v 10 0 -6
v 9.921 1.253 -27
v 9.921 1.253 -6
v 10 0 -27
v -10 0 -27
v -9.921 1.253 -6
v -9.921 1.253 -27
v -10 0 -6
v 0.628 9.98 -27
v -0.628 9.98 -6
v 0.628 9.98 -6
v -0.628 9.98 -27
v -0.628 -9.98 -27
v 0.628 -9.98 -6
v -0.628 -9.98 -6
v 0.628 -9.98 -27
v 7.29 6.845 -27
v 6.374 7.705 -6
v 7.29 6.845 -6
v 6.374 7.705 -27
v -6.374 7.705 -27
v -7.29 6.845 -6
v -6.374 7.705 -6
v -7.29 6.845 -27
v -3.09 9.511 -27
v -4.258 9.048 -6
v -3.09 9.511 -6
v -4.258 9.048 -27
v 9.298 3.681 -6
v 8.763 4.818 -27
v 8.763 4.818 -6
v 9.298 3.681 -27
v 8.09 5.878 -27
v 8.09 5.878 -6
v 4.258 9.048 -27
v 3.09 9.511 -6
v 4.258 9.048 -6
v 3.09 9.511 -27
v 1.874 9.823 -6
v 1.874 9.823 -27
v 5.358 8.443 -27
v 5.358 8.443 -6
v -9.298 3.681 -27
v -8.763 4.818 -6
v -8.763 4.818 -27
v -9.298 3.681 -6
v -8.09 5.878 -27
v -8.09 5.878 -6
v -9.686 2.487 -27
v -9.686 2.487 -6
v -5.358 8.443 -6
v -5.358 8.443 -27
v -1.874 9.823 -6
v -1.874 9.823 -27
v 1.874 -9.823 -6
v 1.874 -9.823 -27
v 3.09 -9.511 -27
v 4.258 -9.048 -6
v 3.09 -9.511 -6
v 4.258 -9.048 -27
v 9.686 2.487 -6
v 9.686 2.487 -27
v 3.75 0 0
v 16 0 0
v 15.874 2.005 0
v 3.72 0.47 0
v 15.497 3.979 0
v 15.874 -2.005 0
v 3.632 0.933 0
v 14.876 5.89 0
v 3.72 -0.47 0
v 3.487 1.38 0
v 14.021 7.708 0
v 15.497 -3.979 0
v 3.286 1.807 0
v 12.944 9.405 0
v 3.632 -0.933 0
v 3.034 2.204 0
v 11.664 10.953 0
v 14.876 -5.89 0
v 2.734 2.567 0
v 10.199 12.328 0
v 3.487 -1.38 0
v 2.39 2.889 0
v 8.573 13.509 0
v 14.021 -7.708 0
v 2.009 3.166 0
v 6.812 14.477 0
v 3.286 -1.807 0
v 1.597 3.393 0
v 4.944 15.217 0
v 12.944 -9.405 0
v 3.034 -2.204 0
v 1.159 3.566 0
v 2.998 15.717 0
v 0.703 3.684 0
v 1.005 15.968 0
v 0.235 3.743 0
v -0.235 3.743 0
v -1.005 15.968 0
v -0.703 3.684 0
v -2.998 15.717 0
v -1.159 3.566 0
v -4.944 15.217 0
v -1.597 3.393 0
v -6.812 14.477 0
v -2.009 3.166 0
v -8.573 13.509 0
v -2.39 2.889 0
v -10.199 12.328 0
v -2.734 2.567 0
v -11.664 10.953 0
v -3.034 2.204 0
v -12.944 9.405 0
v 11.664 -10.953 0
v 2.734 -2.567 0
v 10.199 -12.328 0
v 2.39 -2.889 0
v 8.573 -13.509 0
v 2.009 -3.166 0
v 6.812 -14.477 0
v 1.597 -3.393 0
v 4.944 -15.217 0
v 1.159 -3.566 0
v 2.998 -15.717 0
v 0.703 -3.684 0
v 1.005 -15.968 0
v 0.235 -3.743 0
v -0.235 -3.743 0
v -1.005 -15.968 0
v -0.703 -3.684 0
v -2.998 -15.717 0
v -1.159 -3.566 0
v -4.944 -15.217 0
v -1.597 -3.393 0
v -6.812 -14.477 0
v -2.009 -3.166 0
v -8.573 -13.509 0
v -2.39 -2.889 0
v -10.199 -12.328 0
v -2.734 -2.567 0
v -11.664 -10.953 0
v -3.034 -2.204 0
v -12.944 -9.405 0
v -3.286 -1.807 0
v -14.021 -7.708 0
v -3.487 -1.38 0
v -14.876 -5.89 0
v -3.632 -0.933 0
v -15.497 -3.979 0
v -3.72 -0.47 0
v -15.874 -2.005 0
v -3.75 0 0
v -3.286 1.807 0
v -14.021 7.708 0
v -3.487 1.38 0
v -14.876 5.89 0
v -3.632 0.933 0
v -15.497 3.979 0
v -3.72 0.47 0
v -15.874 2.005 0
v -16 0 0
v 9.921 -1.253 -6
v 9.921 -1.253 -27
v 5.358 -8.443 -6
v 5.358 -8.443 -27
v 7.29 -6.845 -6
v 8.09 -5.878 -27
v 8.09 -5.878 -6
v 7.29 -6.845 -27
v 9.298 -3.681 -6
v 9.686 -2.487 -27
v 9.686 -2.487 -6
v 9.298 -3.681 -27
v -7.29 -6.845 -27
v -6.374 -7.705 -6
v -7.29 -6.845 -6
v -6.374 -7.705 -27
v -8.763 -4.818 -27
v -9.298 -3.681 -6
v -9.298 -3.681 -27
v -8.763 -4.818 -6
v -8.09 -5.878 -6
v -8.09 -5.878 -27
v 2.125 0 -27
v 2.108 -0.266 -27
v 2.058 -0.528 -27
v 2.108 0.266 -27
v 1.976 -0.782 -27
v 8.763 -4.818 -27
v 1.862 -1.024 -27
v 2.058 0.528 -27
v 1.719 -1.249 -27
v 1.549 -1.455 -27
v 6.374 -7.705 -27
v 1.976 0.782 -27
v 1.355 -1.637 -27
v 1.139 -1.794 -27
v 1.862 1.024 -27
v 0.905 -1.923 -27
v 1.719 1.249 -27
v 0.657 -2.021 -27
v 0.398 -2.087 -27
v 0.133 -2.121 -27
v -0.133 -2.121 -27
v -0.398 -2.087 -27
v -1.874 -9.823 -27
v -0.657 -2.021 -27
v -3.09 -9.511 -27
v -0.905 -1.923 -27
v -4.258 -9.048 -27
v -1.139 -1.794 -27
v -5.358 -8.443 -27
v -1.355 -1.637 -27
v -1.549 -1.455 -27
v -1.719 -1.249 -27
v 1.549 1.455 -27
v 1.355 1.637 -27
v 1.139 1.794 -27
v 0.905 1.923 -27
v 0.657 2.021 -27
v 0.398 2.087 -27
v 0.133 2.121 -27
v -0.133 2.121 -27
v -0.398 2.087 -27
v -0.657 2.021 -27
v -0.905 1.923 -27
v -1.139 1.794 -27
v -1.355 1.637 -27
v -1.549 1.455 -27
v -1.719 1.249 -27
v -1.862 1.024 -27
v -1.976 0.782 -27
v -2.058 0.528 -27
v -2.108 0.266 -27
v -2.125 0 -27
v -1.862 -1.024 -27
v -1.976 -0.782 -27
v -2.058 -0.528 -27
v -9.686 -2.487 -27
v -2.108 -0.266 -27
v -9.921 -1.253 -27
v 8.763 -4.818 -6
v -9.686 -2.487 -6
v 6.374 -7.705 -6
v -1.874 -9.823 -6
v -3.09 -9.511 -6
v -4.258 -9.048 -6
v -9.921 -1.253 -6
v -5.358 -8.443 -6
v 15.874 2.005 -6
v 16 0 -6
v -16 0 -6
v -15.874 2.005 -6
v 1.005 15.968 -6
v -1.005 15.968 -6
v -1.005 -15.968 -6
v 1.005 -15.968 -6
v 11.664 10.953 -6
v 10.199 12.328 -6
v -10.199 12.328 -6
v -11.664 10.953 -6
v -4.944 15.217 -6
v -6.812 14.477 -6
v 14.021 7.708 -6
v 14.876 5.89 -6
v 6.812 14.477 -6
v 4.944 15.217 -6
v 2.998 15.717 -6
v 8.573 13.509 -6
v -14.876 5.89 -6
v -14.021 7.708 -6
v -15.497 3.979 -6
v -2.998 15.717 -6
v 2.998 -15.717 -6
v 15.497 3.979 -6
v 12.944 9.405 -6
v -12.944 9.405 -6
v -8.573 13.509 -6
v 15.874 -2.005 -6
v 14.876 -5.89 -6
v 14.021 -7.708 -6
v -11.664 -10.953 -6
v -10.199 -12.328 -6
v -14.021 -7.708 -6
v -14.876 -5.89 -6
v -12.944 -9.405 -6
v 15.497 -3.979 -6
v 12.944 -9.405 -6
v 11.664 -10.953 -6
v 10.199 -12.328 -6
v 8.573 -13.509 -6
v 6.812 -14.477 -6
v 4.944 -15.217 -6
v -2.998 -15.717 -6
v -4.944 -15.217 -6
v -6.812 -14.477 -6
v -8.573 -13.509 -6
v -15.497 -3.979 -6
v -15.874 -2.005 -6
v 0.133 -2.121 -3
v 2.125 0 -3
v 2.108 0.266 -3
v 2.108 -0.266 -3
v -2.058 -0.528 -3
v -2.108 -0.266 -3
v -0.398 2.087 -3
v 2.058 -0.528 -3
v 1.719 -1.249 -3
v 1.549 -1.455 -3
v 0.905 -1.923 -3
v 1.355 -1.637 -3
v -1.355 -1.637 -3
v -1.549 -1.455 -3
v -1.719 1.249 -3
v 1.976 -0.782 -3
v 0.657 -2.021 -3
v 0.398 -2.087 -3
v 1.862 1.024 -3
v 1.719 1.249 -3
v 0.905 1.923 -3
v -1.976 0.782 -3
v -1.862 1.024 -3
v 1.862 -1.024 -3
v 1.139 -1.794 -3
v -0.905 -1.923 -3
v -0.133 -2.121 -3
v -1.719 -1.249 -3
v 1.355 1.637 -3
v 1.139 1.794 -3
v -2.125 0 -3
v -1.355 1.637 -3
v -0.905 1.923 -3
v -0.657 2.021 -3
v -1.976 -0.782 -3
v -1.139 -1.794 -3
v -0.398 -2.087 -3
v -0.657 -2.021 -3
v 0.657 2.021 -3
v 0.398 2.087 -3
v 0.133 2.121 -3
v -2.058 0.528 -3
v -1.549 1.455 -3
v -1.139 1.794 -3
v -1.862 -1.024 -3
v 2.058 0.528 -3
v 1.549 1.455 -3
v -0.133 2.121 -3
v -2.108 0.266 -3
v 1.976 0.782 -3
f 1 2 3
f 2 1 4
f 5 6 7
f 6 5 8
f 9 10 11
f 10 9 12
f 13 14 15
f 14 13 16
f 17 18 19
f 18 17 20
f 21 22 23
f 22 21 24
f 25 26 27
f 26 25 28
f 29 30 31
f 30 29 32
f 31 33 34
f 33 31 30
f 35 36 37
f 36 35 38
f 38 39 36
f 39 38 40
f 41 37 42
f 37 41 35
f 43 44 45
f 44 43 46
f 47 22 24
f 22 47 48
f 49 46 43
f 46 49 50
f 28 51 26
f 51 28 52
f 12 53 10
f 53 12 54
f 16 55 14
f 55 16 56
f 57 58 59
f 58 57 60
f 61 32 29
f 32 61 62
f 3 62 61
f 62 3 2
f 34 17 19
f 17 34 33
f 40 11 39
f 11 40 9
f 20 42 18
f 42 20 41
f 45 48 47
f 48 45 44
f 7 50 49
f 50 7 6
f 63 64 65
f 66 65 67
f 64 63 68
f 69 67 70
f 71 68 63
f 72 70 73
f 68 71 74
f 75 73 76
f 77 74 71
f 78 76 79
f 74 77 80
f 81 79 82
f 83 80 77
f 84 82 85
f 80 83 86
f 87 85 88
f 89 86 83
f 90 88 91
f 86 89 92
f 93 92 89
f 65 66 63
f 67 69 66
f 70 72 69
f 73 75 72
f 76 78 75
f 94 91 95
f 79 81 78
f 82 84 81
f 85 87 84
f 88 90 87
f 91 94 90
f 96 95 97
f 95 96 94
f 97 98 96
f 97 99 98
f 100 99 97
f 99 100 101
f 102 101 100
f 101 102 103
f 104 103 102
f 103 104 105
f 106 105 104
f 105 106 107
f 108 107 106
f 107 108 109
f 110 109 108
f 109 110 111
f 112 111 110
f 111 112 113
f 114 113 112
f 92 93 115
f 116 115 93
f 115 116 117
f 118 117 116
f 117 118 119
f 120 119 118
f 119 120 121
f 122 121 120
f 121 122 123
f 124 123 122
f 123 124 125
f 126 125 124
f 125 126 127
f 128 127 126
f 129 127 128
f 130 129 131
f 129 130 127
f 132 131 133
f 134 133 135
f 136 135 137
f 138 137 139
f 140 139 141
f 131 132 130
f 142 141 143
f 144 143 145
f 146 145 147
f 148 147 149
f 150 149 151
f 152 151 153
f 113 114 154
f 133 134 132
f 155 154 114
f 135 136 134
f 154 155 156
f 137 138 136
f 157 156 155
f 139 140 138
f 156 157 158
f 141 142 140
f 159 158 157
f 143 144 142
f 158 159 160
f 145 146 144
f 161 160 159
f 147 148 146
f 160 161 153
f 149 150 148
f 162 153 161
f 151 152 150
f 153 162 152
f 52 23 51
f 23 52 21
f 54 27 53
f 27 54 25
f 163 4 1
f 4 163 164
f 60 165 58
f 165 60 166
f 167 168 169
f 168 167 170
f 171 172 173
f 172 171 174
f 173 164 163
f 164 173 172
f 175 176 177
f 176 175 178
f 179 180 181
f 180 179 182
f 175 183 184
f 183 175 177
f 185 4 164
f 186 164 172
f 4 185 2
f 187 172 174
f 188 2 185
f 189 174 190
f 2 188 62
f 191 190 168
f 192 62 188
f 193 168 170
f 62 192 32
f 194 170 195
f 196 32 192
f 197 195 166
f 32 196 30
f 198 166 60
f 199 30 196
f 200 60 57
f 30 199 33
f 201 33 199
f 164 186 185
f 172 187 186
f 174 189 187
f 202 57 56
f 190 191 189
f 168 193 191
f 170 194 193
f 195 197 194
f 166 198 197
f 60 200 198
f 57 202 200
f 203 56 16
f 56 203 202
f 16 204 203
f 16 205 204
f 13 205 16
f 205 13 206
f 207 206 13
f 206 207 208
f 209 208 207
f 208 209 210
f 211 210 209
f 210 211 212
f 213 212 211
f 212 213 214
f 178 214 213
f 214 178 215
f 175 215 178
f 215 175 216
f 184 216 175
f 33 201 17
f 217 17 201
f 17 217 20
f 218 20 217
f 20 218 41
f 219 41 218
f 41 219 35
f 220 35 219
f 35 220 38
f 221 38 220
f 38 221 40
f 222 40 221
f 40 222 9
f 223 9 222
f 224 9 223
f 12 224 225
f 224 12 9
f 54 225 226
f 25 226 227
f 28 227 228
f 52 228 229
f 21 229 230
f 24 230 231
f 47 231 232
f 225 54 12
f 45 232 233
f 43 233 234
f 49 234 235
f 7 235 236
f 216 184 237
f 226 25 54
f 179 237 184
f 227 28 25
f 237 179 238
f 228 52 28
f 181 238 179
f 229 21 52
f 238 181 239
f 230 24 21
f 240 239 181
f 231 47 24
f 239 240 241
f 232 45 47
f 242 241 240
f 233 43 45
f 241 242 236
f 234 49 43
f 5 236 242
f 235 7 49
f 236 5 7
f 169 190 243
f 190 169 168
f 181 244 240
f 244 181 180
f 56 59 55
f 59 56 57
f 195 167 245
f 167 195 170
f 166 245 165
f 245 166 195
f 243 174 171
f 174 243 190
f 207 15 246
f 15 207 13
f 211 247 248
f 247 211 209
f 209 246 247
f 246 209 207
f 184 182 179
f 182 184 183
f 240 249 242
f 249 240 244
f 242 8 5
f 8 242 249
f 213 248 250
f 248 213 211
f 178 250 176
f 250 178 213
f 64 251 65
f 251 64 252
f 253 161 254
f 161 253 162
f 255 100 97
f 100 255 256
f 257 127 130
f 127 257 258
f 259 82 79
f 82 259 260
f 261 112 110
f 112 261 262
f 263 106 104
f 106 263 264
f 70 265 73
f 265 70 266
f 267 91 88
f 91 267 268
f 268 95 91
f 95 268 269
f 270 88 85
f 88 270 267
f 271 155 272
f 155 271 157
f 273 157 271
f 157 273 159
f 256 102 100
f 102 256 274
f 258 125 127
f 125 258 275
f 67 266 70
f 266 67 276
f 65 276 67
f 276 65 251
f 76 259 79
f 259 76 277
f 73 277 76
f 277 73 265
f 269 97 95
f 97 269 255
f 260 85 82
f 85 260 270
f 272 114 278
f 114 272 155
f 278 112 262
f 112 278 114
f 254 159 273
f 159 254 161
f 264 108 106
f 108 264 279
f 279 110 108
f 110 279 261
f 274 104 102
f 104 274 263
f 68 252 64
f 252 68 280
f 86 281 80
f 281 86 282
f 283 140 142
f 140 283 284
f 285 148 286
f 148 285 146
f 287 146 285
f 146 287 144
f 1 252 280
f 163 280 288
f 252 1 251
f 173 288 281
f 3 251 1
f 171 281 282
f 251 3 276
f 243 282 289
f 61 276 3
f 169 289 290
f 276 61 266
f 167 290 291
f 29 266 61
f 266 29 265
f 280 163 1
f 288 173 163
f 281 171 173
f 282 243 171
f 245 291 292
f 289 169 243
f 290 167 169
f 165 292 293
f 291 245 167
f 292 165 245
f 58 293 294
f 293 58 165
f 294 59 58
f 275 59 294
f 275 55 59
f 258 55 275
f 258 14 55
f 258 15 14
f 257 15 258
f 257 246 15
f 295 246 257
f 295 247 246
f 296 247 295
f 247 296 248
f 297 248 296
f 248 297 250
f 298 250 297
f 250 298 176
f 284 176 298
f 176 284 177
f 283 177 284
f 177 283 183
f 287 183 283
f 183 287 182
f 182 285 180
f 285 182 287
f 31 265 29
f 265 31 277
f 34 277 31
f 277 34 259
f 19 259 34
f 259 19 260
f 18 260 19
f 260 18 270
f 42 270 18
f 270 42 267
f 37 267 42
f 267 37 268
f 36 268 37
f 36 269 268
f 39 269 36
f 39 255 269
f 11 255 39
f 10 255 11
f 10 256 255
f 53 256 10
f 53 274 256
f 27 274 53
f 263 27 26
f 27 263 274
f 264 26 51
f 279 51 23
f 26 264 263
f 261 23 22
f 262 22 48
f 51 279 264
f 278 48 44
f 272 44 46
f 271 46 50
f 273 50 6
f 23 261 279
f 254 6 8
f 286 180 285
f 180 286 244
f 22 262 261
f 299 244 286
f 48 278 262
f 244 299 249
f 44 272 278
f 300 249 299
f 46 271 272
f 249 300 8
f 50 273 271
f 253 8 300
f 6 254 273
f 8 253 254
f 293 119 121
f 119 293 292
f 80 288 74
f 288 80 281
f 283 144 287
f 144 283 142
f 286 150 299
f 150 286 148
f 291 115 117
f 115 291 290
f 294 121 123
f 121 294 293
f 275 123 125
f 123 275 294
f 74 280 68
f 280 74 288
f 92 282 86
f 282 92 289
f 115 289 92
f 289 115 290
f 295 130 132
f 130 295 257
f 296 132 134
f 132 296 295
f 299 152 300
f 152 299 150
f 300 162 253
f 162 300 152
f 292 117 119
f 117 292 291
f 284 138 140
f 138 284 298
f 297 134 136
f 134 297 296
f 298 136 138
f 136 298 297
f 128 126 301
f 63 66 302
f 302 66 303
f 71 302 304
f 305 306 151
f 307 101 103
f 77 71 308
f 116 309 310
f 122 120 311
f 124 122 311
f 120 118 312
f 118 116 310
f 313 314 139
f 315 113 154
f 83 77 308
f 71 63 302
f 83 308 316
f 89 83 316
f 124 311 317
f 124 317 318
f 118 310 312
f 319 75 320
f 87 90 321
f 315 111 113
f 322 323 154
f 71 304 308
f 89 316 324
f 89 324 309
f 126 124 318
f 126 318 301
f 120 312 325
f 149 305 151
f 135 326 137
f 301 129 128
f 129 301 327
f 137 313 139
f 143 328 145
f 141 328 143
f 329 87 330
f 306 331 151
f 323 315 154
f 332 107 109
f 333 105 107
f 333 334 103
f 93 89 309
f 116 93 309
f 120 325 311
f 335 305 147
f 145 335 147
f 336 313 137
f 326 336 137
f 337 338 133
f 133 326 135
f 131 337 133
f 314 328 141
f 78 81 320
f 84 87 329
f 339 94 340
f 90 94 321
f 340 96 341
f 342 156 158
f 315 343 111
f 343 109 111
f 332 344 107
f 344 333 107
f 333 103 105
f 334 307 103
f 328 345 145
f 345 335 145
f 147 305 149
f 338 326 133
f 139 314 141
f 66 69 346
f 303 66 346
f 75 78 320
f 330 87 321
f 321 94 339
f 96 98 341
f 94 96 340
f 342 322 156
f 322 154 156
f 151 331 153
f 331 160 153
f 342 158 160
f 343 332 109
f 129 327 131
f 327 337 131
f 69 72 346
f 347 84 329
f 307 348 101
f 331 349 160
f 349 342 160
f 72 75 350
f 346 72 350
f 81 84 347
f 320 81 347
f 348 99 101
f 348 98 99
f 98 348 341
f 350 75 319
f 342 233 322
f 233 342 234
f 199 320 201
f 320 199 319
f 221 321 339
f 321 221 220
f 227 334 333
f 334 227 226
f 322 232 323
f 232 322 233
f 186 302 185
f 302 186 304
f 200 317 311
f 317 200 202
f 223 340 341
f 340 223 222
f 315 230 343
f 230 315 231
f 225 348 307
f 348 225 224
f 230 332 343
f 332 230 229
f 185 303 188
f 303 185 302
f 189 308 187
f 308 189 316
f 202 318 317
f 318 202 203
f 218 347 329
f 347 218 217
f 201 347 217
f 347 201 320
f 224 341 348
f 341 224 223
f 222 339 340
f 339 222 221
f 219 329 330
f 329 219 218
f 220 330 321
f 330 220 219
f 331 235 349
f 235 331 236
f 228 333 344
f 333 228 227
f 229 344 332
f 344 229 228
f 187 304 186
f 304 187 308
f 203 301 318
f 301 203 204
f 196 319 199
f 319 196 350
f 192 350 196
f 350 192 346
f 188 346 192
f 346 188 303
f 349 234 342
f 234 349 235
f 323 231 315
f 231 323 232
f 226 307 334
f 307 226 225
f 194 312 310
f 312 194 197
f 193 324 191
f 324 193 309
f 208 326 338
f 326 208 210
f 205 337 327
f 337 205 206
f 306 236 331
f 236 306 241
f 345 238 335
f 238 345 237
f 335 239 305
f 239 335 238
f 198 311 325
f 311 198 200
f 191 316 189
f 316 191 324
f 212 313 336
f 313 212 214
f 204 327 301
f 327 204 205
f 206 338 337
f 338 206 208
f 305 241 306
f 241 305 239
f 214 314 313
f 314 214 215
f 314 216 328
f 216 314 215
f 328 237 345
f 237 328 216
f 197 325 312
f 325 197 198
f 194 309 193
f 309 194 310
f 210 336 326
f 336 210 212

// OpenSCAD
$fn = 50;


difference() {
	union() {
		translate(v = [0, 0, -27.0000000000]) {
			cylinder(h = 27, r = 10.0000000000);
		}
		translate(v = [0, 0, -6.0000000000]) {
			cylinder(h = 6, r = 16.0000000000);
		}
	}
	union() {
		translate(v = [0, 0, 0]) {
			rotate(a = [0, 0, 0]) {
				difference() {
					union() {
						#translate(v = [0, 0, -27.0000000000]) {
							cylinder(h = 27, r = 2.0000000000);
						}
						#translate(v = [0, 0, -3]) {
							cylinder(h = 3, r = 10.0000000000, r1 = 2.1250000000, r2 = 3.7500000000);
						}
						#translate(v = [0, 0, -27.0000000000]) {
							cylinder(h = 27, r = 2.1250000000);
						}
						#translate(v = [0, 0, -27.0000000000]) {
							cylinder(h = 27, r = 2.0000000000);
						}
					}
					union();
				}
			}
		}
	}
}
